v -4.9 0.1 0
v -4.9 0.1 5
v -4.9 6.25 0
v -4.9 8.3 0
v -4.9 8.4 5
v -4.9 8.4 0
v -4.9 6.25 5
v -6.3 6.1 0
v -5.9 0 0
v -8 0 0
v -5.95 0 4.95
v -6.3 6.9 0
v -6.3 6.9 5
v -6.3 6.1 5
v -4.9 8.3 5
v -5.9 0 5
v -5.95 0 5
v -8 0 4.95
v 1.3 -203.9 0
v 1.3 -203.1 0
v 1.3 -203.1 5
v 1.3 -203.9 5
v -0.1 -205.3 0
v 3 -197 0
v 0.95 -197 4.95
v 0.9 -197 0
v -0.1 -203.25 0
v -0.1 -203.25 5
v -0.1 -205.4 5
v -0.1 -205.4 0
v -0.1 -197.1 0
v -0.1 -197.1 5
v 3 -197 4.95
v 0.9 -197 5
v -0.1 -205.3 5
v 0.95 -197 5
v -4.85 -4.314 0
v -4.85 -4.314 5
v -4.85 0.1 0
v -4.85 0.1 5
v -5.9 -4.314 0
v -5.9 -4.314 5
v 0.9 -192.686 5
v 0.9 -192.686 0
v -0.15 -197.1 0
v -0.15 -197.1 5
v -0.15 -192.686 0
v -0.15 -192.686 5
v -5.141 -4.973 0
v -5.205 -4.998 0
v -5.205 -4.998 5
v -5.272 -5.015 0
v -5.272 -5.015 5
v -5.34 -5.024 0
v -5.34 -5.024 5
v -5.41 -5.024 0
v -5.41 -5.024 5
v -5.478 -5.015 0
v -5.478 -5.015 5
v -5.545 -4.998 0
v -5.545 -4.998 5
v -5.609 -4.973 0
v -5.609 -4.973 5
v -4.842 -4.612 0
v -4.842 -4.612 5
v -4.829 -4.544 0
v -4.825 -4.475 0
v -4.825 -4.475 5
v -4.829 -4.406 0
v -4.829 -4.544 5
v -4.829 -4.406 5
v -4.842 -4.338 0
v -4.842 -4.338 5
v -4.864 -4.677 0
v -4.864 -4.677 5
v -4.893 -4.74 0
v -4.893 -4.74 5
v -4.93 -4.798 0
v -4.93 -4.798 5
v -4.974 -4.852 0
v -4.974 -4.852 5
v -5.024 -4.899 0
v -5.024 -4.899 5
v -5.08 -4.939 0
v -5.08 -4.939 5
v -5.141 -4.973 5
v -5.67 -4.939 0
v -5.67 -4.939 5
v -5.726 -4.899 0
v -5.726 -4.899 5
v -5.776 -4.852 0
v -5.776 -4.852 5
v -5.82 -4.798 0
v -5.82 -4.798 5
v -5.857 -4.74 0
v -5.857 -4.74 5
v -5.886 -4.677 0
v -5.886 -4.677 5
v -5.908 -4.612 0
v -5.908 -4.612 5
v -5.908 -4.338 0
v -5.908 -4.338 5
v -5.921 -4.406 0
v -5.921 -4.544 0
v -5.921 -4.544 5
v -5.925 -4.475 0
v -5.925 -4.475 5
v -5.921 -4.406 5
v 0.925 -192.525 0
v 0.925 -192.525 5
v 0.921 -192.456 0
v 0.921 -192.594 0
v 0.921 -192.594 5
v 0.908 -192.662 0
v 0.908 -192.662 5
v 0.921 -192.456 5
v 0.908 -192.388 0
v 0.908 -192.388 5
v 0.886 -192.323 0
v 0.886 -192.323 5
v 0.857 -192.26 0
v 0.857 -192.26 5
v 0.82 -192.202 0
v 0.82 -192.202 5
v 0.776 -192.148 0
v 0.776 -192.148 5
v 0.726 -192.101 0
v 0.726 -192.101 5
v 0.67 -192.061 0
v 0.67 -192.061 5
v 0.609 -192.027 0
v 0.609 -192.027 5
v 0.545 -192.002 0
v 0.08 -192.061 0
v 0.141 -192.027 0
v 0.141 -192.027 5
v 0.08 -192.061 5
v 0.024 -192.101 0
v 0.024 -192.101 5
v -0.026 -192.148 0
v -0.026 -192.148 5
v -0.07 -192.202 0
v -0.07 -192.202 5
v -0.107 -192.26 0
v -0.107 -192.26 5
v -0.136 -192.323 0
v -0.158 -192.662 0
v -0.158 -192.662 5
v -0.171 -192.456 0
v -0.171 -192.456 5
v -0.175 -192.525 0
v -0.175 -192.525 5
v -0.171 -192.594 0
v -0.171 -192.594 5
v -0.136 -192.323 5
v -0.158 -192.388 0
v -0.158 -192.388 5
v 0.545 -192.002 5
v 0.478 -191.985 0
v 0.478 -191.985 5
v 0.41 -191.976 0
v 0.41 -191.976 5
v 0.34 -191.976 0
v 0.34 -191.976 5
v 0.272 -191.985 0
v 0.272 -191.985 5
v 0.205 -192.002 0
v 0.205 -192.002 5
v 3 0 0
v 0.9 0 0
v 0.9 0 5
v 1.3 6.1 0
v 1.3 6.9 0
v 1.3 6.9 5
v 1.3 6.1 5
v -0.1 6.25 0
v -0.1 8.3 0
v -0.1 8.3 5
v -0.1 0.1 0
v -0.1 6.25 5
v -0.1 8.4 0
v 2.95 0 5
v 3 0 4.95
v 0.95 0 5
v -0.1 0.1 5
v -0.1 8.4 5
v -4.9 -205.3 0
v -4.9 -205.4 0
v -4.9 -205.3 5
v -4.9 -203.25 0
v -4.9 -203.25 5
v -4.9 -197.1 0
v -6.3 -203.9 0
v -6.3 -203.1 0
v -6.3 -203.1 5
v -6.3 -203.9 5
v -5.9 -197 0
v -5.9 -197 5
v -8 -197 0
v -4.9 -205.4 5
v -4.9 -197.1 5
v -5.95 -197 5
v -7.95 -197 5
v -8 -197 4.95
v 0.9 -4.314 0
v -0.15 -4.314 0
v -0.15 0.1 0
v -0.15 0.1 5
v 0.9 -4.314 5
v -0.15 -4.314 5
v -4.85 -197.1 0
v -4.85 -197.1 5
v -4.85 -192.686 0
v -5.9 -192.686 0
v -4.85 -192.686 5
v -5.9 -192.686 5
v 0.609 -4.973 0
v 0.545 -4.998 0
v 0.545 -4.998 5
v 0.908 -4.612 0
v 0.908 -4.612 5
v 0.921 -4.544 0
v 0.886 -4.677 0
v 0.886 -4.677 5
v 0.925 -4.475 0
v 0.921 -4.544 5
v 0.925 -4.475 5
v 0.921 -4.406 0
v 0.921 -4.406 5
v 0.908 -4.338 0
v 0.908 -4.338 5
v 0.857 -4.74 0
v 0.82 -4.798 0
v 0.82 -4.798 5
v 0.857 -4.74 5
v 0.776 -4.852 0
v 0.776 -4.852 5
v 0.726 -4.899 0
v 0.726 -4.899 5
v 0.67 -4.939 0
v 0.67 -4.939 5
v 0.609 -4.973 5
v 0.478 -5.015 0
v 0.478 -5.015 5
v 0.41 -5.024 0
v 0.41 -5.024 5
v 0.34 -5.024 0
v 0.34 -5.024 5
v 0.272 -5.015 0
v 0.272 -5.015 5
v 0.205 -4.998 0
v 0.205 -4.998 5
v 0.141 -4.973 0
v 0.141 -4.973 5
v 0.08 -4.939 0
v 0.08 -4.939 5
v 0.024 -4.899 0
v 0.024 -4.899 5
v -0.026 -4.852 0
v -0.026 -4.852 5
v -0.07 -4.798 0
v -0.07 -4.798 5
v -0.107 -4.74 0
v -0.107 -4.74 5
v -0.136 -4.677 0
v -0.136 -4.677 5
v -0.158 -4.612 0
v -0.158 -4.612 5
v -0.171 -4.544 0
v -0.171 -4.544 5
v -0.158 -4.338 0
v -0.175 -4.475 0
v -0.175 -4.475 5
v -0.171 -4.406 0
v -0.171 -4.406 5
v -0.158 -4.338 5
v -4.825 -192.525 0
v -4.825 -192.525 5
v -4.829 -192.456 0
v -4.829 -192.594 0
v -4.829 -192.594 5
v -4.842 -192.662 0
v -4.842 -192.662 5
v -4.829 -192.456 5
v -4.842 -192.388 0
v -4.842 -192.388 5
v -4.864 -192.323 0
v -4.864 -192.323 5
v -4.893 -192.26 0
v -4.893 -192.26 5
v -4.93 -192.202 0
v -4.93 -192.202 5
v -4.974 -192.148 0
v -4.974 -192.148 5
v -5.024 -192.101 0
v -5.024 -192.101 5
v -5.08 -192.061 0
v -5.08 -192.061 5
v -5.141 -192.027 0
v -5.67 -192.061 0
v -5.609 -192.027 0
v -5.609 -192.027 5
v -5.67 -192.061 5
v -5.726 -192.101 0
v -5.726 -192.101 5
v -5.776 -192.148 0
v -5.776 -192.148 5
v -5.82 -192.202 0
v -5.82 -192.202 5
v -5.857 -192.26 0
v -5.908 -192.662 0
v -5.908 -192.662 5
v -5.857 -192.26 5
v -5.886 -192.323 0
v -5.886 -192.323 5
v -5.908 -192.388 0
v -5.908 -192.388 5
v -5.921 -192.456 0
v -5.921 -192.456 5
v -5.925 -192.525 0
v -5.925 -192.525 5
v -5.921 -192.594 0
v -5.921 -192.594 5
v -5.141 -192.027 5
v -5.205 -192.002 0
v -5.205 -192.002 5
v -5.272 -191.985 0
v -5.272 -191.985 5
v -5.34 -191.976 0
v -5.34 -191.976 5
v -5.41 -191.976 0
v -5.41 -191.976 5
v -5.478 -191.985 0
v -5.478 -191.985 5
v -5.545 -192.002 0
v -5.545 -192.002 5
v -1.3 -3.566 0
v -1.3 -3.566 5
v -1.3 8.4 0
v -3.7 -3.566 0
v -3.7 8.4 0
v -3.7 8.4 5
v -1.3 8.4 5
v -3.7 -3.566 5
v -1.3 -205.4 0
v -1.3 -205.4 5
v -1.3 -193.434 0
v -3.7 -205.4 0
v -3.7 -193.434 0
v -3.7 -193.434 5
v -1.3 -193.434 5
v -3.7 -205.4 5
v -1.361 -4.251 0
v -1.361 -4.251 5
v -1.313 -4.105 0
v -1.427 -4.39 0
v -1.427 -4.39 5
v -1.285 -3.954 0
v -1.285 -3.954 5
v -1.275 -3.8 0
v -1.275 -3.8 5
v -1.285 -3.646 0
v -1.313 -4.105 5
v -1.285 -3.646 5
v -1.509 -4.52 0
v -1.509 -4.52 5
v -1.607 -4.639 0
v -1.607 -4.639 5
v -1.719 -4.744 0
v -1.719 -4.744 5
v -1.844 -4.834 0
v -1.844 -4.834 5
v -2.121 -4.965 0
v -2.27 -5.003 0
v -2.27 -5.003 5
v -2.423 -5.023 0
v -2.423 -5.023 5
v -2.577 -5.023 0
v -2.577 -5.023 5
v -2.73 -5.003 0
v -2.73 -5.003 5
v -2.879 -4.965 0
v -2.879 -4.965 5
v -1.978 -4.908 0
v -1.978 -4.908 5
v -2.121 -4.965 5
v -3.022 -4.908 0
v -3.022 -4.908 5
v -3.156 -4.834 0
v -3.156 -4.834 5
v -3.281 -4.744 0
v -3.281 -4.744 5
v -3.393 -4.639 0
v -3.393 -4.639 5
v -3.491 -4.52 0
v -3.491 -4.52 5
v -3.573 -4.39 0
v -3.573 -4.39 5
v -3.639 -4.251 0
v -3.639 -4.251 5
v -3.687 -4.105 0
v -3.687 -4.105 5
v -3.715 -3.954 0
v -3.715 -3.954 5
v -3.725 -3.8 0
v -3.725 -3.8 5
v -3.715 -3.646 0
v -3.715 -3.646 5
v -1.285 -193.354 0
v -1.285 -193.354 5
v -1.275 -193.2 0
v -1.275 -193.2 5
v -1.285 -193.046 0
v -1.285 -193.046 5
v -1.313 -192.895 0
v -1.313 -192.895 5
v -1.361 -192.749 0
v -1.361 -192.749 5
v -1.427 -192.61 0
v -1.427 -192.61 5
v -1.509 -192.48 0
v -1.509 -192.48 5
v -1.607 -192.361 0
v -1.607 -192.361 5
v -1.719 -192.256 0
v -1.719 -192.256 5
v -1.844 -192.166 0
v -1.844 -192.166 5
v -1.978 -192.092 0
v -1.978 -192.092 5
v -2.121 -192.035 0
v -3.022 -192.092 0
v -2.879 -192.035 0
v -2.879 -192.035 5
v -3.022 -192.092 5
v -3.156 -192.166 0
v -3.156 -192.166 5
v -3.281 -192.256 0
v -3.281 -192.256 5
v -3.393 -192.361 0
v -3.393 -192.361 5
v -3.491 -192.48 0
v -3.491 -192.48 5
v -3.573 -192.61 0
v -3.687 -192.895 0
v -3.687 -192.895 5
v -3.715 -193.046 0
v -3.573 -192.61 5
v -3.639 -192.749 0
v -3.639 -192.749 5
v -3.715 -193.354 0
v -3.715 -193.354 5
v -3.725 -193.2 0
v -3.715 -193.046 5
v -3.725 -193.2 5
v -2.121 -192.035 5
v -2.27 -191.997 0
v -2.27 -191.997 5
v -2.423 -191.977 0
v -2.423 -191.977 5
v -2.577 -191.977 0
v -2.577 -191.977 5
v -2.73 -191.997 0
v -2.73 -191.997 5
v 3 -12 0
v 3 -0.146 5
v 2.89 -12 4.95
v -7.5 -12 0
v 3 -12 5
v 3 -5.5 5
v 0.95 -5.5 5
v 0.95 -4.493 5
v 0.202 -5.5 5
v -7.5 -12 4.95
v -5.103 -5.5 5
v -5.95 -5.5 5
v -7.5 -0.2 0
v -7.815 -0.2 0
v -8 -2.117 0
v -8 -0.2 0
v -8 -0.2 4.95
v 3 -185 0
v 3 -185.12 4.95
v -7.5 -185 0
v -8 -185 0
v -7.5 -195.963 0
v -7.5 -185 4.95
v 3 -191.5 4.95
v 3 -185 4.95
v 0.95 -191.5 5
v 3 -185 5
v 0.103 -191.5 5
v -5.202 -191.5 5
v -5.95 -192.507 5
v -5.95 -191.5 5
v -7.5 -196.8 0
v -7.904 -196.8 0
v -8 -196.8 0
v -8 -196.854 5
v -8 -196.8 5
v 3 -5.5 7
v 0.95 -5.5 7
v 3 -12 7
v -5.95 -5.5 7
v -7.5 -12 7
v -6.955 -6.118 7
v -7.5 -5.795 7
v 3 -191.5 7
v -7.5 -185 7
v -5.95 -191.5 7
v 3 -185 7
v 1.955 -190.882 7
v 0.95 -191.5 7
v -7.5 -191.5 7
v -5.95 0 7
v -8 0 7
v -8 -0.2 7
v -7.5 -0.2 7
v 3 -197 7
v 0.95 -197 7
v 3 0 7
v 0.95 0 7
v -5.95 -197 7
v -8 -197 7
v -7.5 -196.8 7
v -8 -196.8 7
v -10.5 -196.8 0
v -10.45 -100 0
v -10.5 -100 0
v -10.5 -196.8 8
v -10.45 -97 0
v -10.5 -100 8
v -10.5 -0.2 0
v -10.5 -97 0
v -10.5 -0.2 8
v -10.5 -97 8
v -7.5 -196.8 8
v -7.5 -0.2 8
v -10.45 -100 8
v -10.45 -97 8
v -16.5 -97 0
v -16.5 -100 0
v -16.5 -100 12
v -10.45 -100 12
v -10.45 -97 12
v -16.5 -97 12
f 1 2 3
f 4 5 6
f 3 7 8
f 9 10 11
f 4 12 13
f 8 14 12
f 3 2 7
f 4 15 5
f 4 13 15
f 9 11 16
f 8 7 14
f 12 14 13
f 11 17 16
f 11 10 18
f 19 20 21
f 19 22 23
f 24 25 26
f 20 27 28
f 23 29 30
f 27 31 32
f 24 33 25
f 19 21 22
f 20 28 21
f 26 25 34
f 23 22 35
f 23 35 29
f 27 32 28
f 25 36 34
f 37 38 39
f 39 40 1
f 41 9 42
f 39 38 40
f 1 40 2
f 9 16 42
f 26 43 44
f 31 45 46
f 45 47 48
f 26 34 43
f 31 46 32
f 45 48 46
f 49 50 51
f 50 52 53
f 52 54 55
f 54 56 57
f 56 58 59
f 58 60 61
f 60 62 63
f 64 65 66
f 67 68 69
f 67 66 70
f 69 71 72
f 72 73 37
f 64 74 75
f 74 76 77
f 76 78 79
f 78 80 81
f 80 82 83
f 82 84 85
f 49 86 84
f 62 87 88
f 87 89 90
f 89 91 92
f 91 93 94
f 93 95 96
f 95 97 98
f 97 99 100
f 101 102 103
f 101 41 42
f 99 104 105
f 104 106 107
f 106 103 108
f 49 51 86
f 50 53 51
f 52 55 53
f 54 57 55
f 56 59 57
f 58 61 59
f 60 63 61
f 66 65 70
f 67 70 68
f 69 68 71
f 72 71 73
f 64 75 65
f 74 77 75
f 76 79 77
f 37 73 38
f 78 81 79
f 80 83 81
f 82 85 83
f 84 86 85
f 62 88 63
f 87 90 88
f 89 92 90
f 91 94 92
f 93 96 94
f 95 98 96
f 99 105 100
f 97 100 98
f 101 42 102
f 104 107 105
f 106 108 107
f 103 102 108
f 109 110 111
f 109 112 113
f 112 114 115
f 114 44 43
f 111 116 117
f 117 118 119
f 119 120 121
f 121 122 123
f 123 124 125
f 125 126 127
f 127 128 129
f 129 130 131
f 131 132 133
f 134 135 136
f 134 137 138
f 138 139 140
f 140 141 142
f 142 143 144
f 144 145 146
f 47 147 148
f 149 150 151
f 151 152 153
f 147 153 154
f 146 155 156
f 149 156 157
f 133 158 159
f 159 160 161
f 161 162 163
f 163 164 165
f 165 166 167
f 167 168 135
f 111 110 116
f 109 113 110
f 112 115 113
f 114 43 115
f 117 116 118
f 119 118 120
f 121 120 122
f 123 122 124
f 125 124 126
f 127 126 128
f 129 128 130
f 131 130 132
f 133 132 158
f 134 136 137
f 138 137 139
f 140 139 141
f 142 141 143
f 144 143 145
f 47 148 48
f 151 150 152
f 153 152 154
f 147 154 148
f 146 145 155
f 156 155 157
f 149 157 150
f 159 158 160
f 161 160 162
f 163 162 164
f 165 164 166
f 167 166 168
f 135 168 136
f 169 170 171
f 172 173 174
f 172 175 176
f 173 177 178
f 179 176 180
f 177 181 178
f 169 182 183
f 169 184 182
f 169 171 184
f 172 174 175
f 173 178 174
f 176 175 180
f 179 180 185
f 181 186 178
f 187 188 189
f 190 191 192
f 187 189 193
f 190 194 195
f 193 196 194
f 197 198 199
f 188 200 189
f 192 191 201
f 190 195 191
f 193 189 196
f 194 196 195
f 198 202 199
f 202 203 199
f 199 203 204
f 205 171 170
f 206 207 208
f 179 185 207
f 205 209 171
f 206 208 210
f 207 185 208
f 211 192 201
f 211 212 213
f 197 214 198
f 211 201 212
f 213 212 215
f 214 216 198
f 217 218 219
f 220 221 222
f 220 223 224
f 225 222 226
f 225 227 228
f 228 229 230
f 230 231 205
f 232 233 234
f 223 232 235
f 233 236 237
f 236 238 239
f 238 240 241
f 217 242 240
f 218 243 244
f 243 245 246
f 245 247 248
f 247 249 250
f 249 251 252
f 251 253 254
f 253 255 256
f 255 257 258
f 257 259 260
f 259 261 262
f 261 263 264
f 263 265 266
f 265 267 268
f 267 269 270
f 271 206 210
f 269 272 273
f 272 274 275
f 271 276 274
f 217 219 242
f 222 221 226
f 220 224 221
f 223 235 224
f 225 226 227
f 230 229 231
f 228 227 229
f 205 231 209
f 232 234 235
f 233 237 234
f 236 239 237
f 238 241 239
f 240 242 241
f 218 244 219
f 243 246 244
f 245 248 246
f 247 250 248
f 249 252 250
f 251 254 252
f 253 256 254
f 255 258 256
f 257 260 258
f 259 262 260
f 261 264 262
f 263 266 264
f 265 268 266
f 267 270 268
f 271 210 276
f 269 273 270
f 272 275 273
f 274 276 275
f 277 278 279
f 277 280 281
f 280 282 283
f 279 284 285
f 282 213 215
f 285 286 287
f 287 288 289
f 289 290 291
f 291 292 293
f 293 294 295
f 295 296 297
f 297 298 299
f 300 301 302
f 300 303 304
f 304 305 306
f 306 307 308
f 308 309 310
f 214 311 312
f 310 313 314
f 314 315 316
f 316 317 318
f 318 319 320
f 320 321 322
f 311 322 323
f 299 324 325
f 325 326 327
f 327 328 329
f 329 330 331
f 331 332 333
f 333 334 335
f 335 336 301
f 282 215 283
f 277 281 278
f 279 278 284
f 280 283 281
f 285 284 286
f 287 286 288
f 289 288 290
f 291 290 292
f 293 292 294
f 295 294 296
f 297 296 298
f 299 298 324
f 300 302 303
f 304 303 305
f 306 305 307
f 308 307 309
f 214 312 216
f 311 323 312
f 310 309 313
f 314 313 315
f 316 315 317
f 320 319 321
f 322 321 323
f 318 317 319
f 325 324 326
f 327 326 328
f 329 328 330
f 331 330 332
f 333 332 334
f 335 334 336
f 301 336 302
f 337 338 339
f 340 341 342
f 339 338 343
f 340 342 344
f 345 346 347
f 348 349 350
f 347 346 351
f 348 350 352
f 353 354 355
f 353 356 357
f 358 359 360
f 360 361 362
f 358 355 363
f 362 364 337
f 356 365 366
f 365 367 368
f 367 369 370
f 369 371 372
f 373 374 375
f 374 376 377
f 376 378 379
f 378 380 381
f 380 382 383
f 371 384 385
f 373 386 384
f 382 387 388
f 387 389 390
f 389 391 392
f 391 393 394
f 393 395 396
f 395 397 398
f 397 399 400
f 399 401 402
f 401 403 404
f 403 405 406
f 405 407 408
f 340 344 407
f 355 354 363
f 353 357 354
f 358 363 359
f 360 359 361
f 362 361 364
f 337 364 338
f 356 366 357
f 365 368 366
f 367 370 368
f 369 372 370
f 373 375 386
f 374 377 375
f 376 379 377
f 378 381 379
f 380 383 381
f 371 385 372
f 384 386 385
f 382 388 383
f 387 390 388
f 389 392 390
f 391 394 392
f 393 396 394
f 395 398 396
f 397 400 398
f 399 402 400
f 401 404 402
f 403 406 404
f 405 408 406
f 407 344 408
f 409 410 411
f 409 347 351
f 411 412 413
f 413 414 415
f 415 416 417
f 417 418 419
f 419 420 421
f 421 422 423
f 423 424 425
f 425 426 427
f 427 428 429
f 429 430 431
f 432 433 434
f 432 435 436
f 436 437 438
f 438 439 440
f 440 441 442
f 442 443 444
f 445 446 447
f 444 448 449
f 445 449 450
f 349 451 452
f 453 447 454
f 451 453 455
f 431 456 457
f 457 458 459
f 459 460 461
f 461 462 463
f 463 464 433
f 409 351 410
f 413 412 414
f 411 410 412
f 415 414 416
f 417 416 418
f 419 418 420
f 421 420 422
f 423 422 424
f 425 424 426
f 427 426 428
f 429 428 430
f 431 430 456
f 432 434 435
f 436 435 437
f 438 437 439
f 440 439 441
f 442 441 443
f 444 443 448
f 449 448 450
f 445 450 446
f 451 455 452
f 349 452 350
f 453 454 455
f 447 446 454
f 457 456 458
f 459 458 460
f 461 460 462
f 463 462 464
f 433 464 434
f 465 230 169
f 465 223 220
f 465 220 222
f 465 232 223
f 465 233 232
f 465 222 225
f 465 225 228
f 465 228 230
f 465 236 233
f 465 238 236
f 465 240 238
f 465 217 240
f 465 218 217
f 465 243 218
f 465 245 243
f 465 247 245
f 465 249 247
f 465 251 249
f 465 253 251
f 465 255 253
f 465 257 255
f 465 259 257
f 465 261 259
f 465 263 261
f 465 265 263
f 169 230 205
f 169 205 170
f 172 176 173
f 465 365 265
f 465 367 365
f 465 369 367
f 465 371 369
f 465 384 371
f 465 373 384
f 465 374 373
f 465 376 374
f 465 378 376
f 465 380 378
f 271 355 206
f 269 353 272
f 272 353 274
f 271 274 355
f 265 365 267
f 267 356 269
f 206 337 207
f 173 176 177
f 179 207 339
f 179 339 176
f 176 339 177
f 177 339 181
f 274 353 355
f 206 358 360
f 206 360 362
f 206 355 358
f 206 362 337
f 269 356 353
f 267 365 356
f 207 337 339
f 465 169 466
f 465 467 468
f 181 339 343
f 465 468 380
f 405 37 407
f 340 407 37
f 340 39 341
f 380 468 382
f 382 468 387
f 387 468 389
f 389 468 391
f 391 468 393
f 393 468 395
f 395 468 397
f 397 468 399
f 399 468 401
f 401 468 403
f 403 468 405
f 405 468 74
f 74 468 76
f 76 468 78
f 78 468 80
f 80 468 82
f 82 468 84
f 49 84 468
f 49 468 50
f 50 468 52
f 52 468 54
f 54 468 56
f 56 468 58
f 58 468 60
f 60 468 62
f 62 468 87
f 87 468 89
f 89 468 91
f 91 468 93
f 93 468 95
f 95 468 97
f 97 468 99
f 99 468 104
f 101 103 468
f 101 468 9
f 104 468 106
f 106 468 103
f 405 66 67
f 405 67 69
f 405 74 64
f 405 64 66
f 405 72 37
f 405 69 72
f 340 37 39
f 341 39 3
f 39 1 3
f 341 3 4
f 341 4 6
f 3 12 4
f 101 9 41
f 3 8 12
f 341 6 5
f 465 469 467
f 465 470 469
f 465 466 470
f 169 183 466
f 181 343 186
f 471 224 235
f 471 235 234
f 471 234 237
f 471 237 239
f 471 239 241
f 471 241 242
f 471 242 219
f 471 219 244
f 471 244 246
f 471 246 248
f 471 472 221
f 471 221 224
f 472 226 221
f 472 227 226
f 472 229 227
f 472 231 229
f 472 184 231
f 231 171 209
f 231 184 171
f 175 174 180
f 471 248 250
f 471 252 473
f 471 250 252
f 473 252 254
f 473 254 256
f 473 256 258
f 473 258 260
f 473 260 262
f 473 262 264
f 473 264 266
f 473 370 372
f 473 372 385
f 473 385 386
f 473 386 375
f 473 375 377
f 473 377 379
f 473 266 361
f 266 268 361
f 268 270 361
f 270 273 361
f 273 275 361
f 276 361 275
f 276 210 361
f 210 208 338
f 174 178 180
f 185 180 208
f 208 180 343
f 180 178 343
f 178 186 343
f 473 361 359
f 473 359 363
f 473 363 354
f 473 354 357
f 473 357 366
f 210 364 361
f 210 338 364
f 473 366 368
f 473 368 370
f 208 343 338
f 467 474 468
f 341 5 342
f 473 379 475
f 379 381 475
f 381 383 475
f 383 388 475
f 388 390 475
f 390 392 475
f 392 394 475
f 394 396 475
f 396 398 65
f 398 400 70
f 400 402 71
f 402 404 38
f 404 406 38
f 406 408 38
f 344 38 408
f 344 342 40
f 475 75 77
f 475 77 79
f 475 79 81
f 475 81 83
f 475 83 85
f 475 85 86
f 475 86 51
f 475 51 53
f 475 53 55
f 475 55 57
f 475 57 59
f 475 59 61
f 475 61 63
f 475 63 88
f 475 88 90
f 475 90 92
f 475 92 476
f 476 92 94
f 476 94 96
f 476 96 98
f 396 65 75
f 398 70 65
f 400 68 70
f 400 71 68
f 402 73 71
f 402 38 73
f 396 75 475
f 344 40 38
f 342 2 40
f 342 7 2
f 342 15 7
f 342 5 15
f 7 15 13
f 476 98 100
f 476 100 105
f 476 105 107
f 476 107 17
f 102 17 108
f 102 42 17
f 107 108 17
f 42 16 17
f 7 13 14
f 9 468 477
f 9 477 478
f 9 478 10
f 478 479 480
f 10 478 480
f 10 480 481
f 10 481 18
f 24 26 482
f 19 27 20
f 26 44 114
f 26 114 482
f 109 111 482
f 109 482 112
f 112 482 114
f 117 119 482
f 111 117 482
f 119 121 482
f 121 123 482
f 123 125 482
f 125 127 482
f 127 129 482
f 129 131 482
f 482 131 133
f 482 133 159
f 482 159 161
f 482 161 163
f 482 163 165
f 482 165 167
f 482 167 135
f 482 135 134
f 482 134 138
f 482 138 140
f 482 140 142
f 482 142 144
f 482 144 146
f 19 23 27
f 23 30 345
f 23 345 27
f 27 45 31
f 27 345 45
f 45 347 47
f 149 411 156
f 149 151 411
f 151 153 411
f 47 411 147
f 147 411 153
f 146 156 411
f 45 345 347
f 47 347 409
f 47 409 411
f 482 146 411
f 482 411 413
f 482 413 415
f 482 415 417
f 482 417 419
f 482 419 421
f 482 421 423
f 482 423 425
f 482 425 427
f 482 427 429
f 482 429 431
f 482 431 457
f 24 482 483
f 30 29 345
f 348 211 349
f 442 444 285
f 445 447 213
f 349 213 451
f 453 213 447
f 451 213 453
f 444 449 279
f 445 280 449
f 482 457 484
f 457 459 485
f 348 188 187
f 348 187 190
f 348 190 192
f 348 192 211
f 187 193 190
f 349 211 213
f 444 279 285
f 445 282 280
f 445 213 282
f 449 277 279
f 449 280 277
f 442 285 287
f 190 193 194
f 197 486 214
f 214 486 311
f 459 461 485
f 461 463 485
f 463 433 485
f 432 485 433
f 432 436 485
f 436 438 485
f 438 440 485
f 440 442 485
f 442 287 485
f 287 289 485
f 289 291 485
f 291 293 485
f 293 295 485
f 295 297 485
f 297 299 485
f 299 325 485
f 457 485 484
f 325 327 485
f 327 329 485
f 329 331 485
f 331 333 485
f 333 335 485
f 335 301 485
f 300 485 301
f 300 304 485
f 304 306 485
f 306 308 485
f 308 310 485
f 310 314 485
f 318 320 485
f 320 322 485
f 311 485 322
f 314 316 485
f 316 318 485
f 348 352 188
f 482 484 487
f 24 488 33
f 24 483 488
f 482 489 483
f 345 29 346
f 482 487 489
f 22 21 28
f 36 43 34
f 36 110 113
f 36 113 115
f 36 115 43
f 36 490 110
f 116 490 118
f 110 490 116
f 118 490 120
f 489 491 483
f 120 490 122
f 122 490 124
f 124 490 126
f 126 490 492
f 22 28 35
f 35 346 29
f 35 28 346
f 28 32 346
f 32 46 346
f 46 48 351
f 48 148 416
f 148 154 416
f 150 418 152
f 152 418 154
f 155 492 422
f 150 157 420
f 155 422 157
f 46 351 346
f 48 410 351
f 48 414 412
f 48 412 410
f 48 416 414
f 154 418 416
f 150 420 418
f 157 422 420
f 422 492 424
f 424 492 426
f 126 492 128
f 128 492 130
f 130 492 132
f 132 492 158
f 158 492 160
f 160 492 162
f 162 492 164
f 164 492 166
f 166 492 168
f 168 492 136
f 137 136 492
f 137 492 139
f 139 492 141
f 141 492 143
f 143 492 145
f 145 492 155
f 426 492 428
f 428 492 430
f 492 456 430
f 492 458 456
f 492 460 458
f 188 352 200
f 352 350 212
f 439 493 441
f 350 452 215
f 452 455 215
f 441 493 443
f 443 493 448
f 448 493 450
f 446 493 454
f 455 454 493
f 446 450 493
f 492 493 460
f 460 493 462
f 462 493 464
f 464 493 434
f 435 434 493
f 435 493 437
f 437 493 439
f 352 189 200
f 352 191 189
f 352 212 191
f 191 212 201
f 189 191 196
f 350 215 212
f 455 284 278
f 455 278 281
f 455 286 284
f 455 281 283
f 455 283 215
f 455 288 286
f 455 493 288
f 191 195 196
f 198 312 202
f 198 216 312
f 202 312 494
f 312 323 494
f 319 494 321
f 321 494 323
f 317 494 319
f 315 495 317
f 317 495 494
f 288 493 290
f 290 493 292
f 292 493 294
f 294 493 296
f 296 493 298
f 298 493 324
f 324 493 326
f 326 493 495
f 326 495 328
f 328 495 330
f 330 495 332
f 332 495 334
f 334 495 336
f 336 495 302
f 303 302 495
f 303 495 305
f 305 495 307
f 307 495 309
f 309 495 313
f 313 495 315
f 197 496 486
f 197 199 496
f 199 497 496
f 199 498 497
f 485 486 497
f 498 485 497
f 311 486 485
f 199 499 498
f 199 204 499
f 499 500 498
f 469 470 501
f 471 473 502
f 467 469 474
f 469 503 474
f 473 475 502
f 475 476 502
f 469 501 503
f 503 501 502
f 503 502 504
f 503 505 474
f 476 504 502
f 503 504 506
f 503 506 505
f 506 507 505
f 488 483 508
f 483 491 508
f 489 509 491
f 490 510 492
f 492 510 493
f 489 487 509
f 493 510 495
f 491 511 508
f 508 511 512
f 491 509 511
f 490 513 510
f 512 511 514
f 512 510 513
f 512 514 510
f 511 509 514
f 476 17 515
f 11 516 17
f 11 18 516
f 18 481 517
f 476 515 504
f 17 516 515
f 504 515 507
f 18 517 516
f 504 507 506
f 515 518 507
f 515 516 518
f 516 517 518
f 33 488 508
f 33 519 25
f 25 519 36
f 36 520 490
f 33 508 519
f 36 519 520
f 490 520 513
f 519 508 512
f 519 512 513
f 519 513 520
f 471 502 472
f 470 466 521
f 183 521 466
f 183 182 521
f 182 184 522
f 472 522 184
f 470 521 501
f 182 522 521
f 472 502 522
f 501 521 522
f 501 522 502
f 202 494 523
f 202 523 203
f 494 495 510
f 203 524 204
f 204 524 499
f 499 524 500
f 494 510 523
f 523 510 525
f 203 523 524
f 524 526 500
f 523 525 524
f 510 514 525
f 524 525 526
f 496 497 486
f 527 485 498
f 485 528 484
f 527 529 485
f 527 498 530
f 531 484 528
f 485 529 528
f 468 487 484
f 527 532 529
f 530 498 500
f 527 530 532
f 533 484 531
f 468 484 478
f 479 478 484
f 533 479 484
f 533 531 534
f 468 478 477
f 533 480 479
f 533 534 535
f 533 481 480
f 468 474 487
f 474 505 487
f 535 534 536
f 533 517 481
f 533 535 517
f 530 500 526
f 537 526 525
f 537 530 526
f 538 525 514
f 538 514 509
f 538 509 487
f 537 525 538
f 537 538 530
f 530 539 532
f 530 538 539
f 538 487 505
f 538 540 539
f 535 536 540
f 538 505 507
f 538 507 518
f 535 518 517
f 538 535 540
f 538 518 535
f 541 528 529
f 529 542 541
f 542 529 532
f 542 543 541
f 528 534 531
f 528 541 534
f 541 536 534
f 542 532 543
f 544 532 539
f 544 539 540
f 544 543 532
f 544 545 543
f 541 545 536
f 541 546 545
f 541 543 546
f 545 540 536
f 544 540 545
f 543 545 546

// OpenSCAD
$fn = 50;

difference() {
	union() {
		translate(v = [0, 0, 0]) {
			rotate(a = [0, 0, 0]) {
				difference() {
					union() {
						translate(v = [0, 0, 2.5]) {
							rotate(a = [0, -90, 0]) {
								difference() {
									union() {
										translate(v = [0, 0, 0]) {
											rotate(a = [0, 0, 0]) {
												difference() {
													union() {
														translate(v = [-2.5, 0, 2.5]) {
															rotate(a = [0, 90.0, 0]) {
																difference() {
																	union() {
																		translate(v = [0, 0, 0]) {
																			rotate(a = [0, 0, 0]) {
																				difference() {
																					union() {
																						translate(v = [0, 0, 0]) {
																							rotate(a = [0, 0, 0]) {
																								difference() {
																									union() {
																										translate(v = [-5.5, -12.0, 0]) {
																											cube(size = [11.0, 20.4, 5.0]);
																										}
																									}
																									union() {
																										translate(v = [0, 0, -0.1]) {
																											linear_extrude(height = 5.2) {
																												polygon(points = [[-2.4, 0], [-2.4, 6.25], [-3.8, 6.1], [-3.8, 6.8999999999999995], [-2.4, 8.299999999999999], [-2.4, 9.399999999999999], [-5.7, 9.399999999999999], [-5.7, 0]]);
																											}
																										}
																										translate(v = [0, 0, -0.1]) {
																											linear_extrude(height = 5.2) {
																												polygon(points = [[-2.35, -4.5], [-2.35, -4.3875], [-2.35, -4.275], [-2.35, -4.1625], [-2.35, -4.05], [-2.35, -3.9375], [-2.35, -3.825], [-2.35, -3.7125], [-2.35, -3.6], [-2.35, -3.4875], [-2.35, -3.375], [-2.35, -3.2625], [-2.35, -3.15], [-2.35, -3.0375], [-2.35, -2.925], [-2.35, -2.8125], [-2.35, -2.7], [-2.35, -2.5875], [-2.35, -2.475], [-2.35, -2.3625], [-2.35, -2.25], [-2.35, -2.1375], [-2.35, -2.025], [-2.35, -1.9125], [-2.35, -1.7999999999999998], [-2.35, -1.6875], [-2.35, -1.5750000000000002], [-2.35, -1.4625], [-2.35, -1.35], [-2.35, -1.2374999999999998], [-2.35, -1.125], [-2.35, -1.0125000000000002], [-2.35, -0.8999999999999999], [-2.35, -0.7875000000000001], [-2.35, -0.6749999999999998], [-2.35, -0.5625], [-2.35, -0.4500000000000002], [-2.35, -0.33750000000000036], [-2.35, -0.22499999999999964], [-2.35, -0.11249999999999982], [-2.35, 0.0], [-2.35, 0.1], [-3.4, 0.1], [-3.4, -4.5]]);
																											}
																										}
																										translate(v = [-2.875, -4.475, -0.1]) {
																											cylinder(h = 5.2, r = 0.55);
																										}
																										translate(v = [0, 0, -0.1]) {
																											linear_extrude(height = 5.2) {
																												polygon(points = [[2.4, 0], [2.4, 6.25], [3.8, 6.1], [3.8, 6.8999999999999995], [2.4, 8.299999999999999], [2.4, 9.399999999999999], [5.7, 9.399999999999999], [5.7, 0]]);
																											}
																										}
																										translate(v = [0, 0, -0.1]) {
																											linear_extrude(height = 5.2) {
																												polygon(points = [[2.35, -4.5], [2.35, -4.3875], [2.35, -4.275], [2.35, -4.1625], [2.35, -4.05], [2.35, -3.9375], [2.35, -3.825], [2.35, -3.7125], [2.35, -3.6], [2.35, -3.4875], [2.35, -3.375], [2.35, -3.2625], [2.35, -3.15], [2.35, -3.0375], [2.35, -2.925], [2.35, -2.8125], [2.35, -2.7], [2.35, -2.5875], [2.35, -2.475], [2.35, -2.3625], [2.35, -2.25], [2.35, -2.1375], [2.35, -2.025], [2.35, -1.9125], [2.35, -1.7999999999999998], [2.35, -1.6875], [2.35, -1.5750000000000002], [2.35, -1.4625], [2.35, -1.35], [2.35, -1.2374999999999998], [2.35, -1.125], [2.35, -1.0125000000000002], [2.35, -0.8999999999999999], [2.35, -0.7875000000000001], [2.35, -0.6749999999999998], [2.35, -0.5625], [2.35, -0.4500000000000002], [2.35, -0.33750000000000036], [2.35, -0.22499999999999964], [2.35, -0.11249999999999982], [2.35, 0.0], [2.35, 0.1], [3.4, 0.1], [3.4, -4.5]]);
																											}
																										}
																										translate(v = [2.875, -4.475, -0.1]) {
																											cylinder(h = 5.2, r = 0.55);
																										}
																										translate(v = [0, 0, -0.1]) {
																											linear_extrude(height = 5.2) {
																												polygon(points = [[-1.2, -3.8499999999999996], [-1.2, -3.6607142857142856], [-1.2, -3.471428571428571], [-1.2, -3.2821428571428566], [-1.2, -3.0928571428571425], [-1.2, -2.9035714285714285], [-1.2, -2.714285714285714], [-1.2, -2.5249999999999995], [-1.2, -2.3357142857142854], [-1.2, -2.1464285714285714], [-1.2, -1.9571428571428569], [-1.2, -1.7678571428571423], [-1.2, -1.5785714285714283], [-1.2, -1.3892857142857138], [-1.2, -1.1999999999999997], [-1.2, -1.0107142857142852], [-1.2, -0.8214285714285712], [-1.2, -0.6321428571428567], [-1.2, -0.4428571428571426], [-1.2, -0.2535714285714281], [-1.2, -0.06428571428571406], [-1.2, 0], [-1.2, 0.12500000000000044], [-1.2, 0.31428571428571495], [-1.2, 0.503571428571429], [-1.2, 0.6928571428571431], [-1.2, 0.8821428571428571], [-1.2, 1.071428571428572], [-1.2, 1.2607142857142861], [-1.2, 1.4500000000000002], [-1.2, 1.6392857142857142], [-1.2, 1.8285714285714292], [-1.2, 2.0178571428571432], [-1.2, 2.2071428571428573], [-1.2, 2.3964285714285714], [-1.2, 2.5857142857142863], [-1.2, 2.7750000000000004], [-1.2, 2.9642857142857144], [-1.2, 3.1535714285714294], [-1.2, 3.3428571428571434], [-1.2, 3.5321428571428575], [-1.2, 3.7214285714285715], [-1.2, 3.9107142857142865], [-1.2, 4.1000000000000005], [-1.2, 4.289285714285715], [-1.2, 4.4785714285714295], [-1.2, 4.667857142857143], [-1.2, 4.857142857142858], [-1.2, 5.046428571428573], [-1.2, 5.235714285714286], [-1.2, 5.425000000000001], [-1.2, 5.614285714285714], [-1.2, 5.803571428571429], [-1.2, 5.992857142857144], [-1.2, 6.1], [-1.2, 6.182142857142857], [-1.2, 6.25], [-1.2, 6.371428571428572], [-1.2, 6.560714285714287], [-1.2, 6.75], [-1.2, 6.939285714285715], [-1.2, 7.128571428571428], [-1.2, 7.317857142857143], [-1.2, 7.507142857142858], [-1.2, 7.696428571428571], [-1.2, 7.885714285714286], [-1.2, 8.075000000000001], [-1.2, 8.264285714285714], [-1.2, 8.45357142857143], [-1.2, 8.642857142857142], [-1.2, 8.832142857142857], [-1.2, 9.021428571428572], [-1.2, 9.210714285714285], [-1.2, 9.4], [1.2, 9.4], [1.2, 9.210714285714285], [1.2, 9.021428571428572], [1.2, 8.832142857142857], [1.2, 8.642857142857142], [1.2, 8.45357142857143], [1.2, 8.264285714285714], [1.2, 8.075000000000001], [1.2, 7.885714285714286], [1.2, 7.696428571428571], [1.2, 7.507142857142858], [1.2, 7.317857142857143], [1.2, 7.128571428571428], [1.2, 6.939285714285715], [1.2, 6.75], [1.2, 6.560714285714287], [1.2, 6.371428571428572], [1.2, 6.25], [1.2, 6.182142857142857], [1.2, 6.1], [1.2, 5.992857142857144], [1.2, 5.803571428571429], [1.2, 5.614285714285714], [1.2, 5.425000000000001], [1.2, 5.235714285714286], [1.2, 5.046428571428573], [1.2, 4.857142857142858], [1.2, 4.667857142857143], [1.2, 4.4785714285714295], [1.2, 4.289285714285715], [1.2, 4.1000000000000005], [1.2, 3.9107142857142865], [1.2, 3.7214285714285715], [1.2, 3.5321428571428575], [1.2, 3.3428571428571434], [1.2, 3.1535714285714294], [1.2, 2.9642857142857144], [1.2, 2.7750000000000004], [1.2, 2.5857142857142863], [1.2, 2.3964285714285714], [1.2, 2.2071428571428573], [1.2, 2.0178571428571432], [1.2, 1.8285714285714292], [1.2, 1.6392857142857142], [1.2, 1.4500000000000002], [1.2, 1.2607142857142861], [1.2, 1.071428571428572], [1.2, 0.8821428571428571], [1.2, 0.6928571428571431], [1.2, 0.503571428571429], [1.2, 0.31428571428571495], [1.2, 0.12500000000000044], [1.2, 0], [1.2, -0.06428571428571406], [1.2, -0.2535714285714281], [1.2, -0.4428571428571426], [1.2, -0.6321428571428567], [1.2, -0.8214285714285712], [1.2, -1.0107142857142852], [1.2, -1.1999999999999997], [1.2, -1.3892857142857138], [1.2, -1.5785714285714283], [1.2, -1.7678571428571423], [1.2, -1.9571428571428569], [1.2, -2.1464285714285714], [1.2, -2.3357142857142854], [1.2, -2.5249999999999995], [1.2, -2.714285714285714], [1.2, -2.9035714285714285], [1.2, -3.0928571428571425], [1.2, -3.2821428571428566], [1.2, -3.471428571428571], [1.2, -3.6607142857142856], [1.2, -3.8499999999999996]]);
																											}
																										}
																										translate(v = [0, -3.8, -0.1]) {
																											cylinder(h = 5.2, r = 1.2249999999999999);
																										}
																									}
																								}
																							}
																						}
																						translate(v = [0, 0, 0]) {
																							rotate(a = [0, 0, 0]) {
																								difference() {
																									union() {
																										translate(v = [-5.5, -12.0, 4.95]) {
																											cube(size = [11.0, 6.5, 2.05]);
																										}
																									}
																									union();
																								}
																							}
																						}
																						translate(v = [-5.5, -12.0, 4.95]) {
																							cube(size = [2.0500000000000003, 12.0, 2.05]);
																						}
																						translate(v = [3.4499999999999997, -12.0, 4.95]) {
																							cube(size = [2.0500000000000003, 12.0, 2.05]);
																						}
																					}
																					union();
																				}
																			}
																		}
																	}
																	union();
																}
															}
														}
													}
													union();
												}
											}
										}
										translate(v = [-2.5, -197.0, 2.5]) {
											rotate(a = [180, -90, 0]) {
												difference() {
													union() {
														translate(v = [0, 0, 0]) {
															rotate(a = [0, 0, 0]) {
																difference() {
																	union() {
																		translate(v = [0, 0, 0]) {
																			rotate(a = [0, 0, 0]) {
																				difference() {
																					union() {
																						translate(v = [-5.5, -12.0, 0]) {
																							cube(size = [11.0, 20.4, 5.0]);
																						}
																					}
																					union() {
																						translate(v = [0, 0, -0.1]) {
																							linear_extrude(height = 5.2) {
																								polygon(points = [[-2.4, 0], [-2.4, 6.25], [-3.8, 6.1], [-3.8, 6.8999999999999995], [-2.4, 8.299999999999999], [-2.4, 9.399999999999999], [-5.7, 9.399999999999999], [-5.7, 0]]);
																							}
																						}
																						translate(v = [0, 0, -0.1]) {
																							linear_extrude(height = 5.2) {
																								polygon(points = [[-2.35, -4.5], [-2.35, -4.3875], [-2.35, -4.275], [-2.35, -4.1625], [-2.35, -4.05], [-2.35, -3.9375], [-2.35, -3.825], [-2.35, -3.7125], [-2.35, -3.6], [-2.35, -3.4875], [-2.35, -3.375], [-2.35, -3.2625], [-2.35, -3.15], [-2.35, -3.0375], [-2.35, -2.925], [-2.35, -2.8125], [-2.35, -2.7], [-2.35, -2.5875], [-2.35, -2.475], [-2.35, -2.3625], [-2.35, -2.25], [-2.35, -2.1375], [-2.35, -2.025], [-2.35, -1.9125], [-2.35, -1.7999999999999998], [-2.35, -1.6875], [-2.35, -1.5750000000000002], [-2.35, -1.4625], [-2.35, -1.35], [-2.35, -1.2374999999999998], [-2.35, -1.125], [-2.35, -1.0125000000000002], [-2.35, -0.8999999999999999], [-2.35, -0.7875000000000001], [-2.35, -0.6749999999999998], [-2.35, -0.5625], [-2.35, -0.4500000000000002], [-2.35, -0.33750000000000036], [-2.35, -0.22499999999999964], [-2.35, -0.11249999999999982], [-2.35, 0.0], [-2.35, 0.1], [-3.4, 0.1], [-3.4, -4.5]]);
																							}
																						}
																						translate(v = [-2.875, -4.475, -0.1]) {
																							cylinder(h = 5.2, r = 0.55);
																						}
																						translate(v = [0, 0, -0.1]) {
																							linear_extrude(height = 5.2) {
																								polygon(points = [[2.4, 0], [2.4, 6.25], [3.8, 6.1], [3.8, 6.8999999999999995], [2.4, 8.299999999999999], [2.4, 9.399999999999999], [5.7, 9.399999999999999], [5.7, 0]]);
																							}
																						}
																						translate(v = [0, 0, -0.1]) {
																							linear_extrude(height = 5.2) {
																								polygon(points = [[2.35, -4.5], [2.35, -4.3875], [2.35, -4.275], [2.35, -4.1625], [2.35, -4.05], [2.35, -3.9375], [2.35, -3.825], [2.35, -3.7125], [2.35, -3.6], [2.35, -3.4875], [2.35, -3.375], [2.35, -3.2625], [2.35, -3.15], [2.35, -3.0375], [2.35, -2.925], [2.35, -2.8125], [2.35, -2.7], [2.35, -2.5875], [2.35, -2.475], [2.35, -2.3625], [2.35, -2.25], [2.35, -2.1375], [2.35, -2.025], [2.35, -1.9125], [2.35, -1.7999999999999998], [2.35, -1.6875], [2.35, -1.5750000000000002], [2.35, -1.4625], [2.35, -1.35], [2.35, -1.2374999999999998], [2.35, -1.125], [2.35, -1.0125000000000002], [2.35, -0.8999999999999999], [2.35, -0.7875000000000001], [2.35, -0.6749999999999998], [2.35, -0.5625], [2.35, -0.4500000000000002], [2.35, -0.33750000000000036], [2.35, -0.22499999999999964], [2.35, -0.11249999999999982], [2.35, 0.0], [2.35, 0.1], [3.4, 0.1], [3.4, -4.5]]);
																							}
																						}
																						translate(v = [2.875, -4.475, -0.1]) {
																							cylinder(h = 5.2, r = 0.55);
																						}
																						translate(v = [0, 0, -0.1]) {
																							linear_extrude(height = 5.2) {
																								polygon(points = [[-1.2, -3.8499999999999996], [-1.2, -3.6607142857142856], [-1.2, -3.471428571428571], [-1.2, -3.2821428571428566], [-1.2, -3.0928571428571425], [-1.2, -2.9035714285714285], [-1.2, -2.714285714285714], [-1.2, -2.5249999999999995], [-1.2, -2.3357142857142854], [-1.2, -2.1464285714285714], [-1.2, -1.9571428571428569], [-1.2, -1.7678571428571423], [-1.2, -1.5785714285714283], [-1.2, -1.3892857142857138], [-1.2, -1.1999999999999997], [-1.2, -1.0107142857142852], [-1.2, -0.8214285714285712], [-1.2, -0.6321428571428567], [-1.2, -0.4428571428571426], [-1.2, -0.2535714285714281], [-1.2, -0.06428571428571406], [-1.2, 0], [-1.2, 0.12500000000000044], [-1.2, 0.31428571428571495], [-1.2, 0.503571428571429], [-1.2, 0.6928571428571431], [-1.2, 0.8821428571428571], [-1.2, 1.071428571428572], [-1.2, 1.2607142857142861], [-1.2, 1.4500000000000002], [-1.2, 1.6392857142857142], [-1.2, 1.8285714285714292], [-1.2, 2.0178571428571432], [-1.2, 2.2071428571428573], [-1.2, 2.3964285714285714], [-1.2, 2.5857142857142863], [-1.2, 2.7750000000000004], [-1.2, 2.9642857142857144], [-1.2, 3.1535714285714294], [-1.2, 3.3428571428571434], [-1.2, 3.5321428571428575], [-1.2, 3.7214285714285715], [-1.2, 3.9107142857142865], [-1.2, 4.1000000000000005], [-1.2, 4.289285714285715], [-1.2, 4.4785714285714295], [-1.2, 4.667857142857143], [-1.2, 4.857142857142858], [-1.2, 5.046428571428573], [-1.2, 5.235714285714286], [-1.2, 5.425000000000001], [-1.2, 5.614285714285714], [-1.2, 5.803571428571429], [-1.2, 5.992857142857144], [-1.2, 6.1], [-1.2, 6.182142857142857], [-1.2, 6.25], [-1.2, 6.371428571428572], [-1.2, 6.560714285714287], [-1.2, 6.75], [-1.2, 6.939285714285715], [-1.2, 7.128571428571428], [-1.2, 7.317857142857143], [-1.2, 7.507142857142858], [-1.2, 7.696428571428571], [-1.2, 7.885714285714286], [-1.2, 8.075000000000001], [-1.2, 8.264285714285714], [-1.2, 8.45357142857143], [-1.2, 8.642857142857142], [-1.2, 8.832142857142857], [-1.2, 9.021428571428572], [-1.2, 9.210714285714285], [-1.2, 9.4], [1.2, 9.4], [1.2, 9.210714285714285], [1.2, 9.021428571428572], [1.2, 8.832142857142857], [1.2, 8.642857142857142], [1.2, 8.45357142857143], [1.2, 8.264285714285714], [1.2, 8.075000000000001], [1.2, 7.885714285714286], [1.2, 7.696428571428571], [1.2, 7.507142857142858], [1.2, 7.317857142857143], [1.2, 7.128571428571428], [1.2, 6.939285714285715], [1.2, 6.75], [1.2, 6.560714285714287], [1.2, 6.371428571428572], [1.2, 6.25], [1.2, 6.182142857142857], [1.2, 6.1], [1.2, 5.992857142857144], [1.2, 5.803571428571429], [1.2, 5.614285714285714], [1.2, 5.425000000000001], [1.2, 5.235714285714286], [1.2, 5.046428571428573], [1.2, 4.857142857142858], [1.2, 4.667857142857143], [1.2, 4.4785714285714295], [1.2, 4.289285714285715], [1.2, 4.1000000000000005], [1.2, 3.9107142857142865], [1.2, 3.7214285714285715], [1.2, 3.5321428571428575], [1.2, 3.3428571428571434], [1.2, 3.1535714285714294], [1.2, 2.9642857142857144], [1.2, 2.7750000000000004], [1.2, 2.5857142857142863], [1.2, 2.3964285714285714], [1.2, 2.2071428571428573], [1.2, 2.0178571428571432], [1.2, 1.8285714285714292], [1.2, 1.6392857142857142], [1.2, 1.4500000000000002], [1.2, 1.2607142857142861], [1.2, 1.071428571428572], [1.2, 0.8821428571428571], [1.2, 0.6928571428571431], [1.2, 0.503571428571429], [1.2, 0.31428571428571495], [1.2, 0.12500000000000044], [1.2, 0], [1.2, -0.06428571428571406], [1.2, -0.2535714285714281], [1.2, -0.4428571428571426], [1.2, -0.6321428571428567], [1.2, -0.8214285714285712], [1.2, -1.0107142857142852], [1.2, -1.1999999999999997], [1.2, -1.3892857142857138], [1.2, -1.5785714285714283], [1.2, -1.7678571428571423], [1.2, -1.9571428571428569], [1.2, -2.1464285714285714], [1.2, -2.3357142857142854], [1.2, -2.5249999999999995], [1.2, -2.714285714285714], [1.2, -2.9035714285714285], [1.2, -3.0928571428571425], [1.2, -3.2821428571428566], [1.2, -3.471428571428571], [1.2, -3.6607142857142856], [1.2, -3.8499999999999996]]);
																							}
																						}
																						translate(v = [0, -3.8, -0.1]) {
																							cylinder(h = 5.2, r = 1.2249999999999999);
																						}
																					}
																				}
																			}
																		}
																		translate(v = [0, 0, 0]) {
																			rotate(a = [0, 0, 0]) {
																				difference() {
																					union() {
																						translate(v = [-5.5, -12.0, 4.95]) {
																							cube(size = [11.0, 6.5, 2.05]);
																						}
																					}
																					union();
																				}
																			}
																		}
																		translate(v = [-5.5, -12.0, 4.95]) {
																			cube(size = [2.0500000000000003, 12.0, 2.05]);
																		}
																		translate(v = [3.4499999999999997, -12.0, 4.95]) {
																			cube(size = [2.0500000000000003, 12.0, 2.05]);
																		}
																	}
																	union();
																}
															}
														}
													}
													union();
												}
											}
										}
										translate(v = [-2.5, -196.8, 7.5]) {
											cube(size = [8.0, 196.6, 3.0]);
										}
										translate(v = [-2.5, -100.0, 10.45]) {
											cube(size = [12.0, 3.0, 6.05]);
										}
									}
									union();
								}
							}
						}
					}
					union();
				}
			}
		}
	}
	union();
}
